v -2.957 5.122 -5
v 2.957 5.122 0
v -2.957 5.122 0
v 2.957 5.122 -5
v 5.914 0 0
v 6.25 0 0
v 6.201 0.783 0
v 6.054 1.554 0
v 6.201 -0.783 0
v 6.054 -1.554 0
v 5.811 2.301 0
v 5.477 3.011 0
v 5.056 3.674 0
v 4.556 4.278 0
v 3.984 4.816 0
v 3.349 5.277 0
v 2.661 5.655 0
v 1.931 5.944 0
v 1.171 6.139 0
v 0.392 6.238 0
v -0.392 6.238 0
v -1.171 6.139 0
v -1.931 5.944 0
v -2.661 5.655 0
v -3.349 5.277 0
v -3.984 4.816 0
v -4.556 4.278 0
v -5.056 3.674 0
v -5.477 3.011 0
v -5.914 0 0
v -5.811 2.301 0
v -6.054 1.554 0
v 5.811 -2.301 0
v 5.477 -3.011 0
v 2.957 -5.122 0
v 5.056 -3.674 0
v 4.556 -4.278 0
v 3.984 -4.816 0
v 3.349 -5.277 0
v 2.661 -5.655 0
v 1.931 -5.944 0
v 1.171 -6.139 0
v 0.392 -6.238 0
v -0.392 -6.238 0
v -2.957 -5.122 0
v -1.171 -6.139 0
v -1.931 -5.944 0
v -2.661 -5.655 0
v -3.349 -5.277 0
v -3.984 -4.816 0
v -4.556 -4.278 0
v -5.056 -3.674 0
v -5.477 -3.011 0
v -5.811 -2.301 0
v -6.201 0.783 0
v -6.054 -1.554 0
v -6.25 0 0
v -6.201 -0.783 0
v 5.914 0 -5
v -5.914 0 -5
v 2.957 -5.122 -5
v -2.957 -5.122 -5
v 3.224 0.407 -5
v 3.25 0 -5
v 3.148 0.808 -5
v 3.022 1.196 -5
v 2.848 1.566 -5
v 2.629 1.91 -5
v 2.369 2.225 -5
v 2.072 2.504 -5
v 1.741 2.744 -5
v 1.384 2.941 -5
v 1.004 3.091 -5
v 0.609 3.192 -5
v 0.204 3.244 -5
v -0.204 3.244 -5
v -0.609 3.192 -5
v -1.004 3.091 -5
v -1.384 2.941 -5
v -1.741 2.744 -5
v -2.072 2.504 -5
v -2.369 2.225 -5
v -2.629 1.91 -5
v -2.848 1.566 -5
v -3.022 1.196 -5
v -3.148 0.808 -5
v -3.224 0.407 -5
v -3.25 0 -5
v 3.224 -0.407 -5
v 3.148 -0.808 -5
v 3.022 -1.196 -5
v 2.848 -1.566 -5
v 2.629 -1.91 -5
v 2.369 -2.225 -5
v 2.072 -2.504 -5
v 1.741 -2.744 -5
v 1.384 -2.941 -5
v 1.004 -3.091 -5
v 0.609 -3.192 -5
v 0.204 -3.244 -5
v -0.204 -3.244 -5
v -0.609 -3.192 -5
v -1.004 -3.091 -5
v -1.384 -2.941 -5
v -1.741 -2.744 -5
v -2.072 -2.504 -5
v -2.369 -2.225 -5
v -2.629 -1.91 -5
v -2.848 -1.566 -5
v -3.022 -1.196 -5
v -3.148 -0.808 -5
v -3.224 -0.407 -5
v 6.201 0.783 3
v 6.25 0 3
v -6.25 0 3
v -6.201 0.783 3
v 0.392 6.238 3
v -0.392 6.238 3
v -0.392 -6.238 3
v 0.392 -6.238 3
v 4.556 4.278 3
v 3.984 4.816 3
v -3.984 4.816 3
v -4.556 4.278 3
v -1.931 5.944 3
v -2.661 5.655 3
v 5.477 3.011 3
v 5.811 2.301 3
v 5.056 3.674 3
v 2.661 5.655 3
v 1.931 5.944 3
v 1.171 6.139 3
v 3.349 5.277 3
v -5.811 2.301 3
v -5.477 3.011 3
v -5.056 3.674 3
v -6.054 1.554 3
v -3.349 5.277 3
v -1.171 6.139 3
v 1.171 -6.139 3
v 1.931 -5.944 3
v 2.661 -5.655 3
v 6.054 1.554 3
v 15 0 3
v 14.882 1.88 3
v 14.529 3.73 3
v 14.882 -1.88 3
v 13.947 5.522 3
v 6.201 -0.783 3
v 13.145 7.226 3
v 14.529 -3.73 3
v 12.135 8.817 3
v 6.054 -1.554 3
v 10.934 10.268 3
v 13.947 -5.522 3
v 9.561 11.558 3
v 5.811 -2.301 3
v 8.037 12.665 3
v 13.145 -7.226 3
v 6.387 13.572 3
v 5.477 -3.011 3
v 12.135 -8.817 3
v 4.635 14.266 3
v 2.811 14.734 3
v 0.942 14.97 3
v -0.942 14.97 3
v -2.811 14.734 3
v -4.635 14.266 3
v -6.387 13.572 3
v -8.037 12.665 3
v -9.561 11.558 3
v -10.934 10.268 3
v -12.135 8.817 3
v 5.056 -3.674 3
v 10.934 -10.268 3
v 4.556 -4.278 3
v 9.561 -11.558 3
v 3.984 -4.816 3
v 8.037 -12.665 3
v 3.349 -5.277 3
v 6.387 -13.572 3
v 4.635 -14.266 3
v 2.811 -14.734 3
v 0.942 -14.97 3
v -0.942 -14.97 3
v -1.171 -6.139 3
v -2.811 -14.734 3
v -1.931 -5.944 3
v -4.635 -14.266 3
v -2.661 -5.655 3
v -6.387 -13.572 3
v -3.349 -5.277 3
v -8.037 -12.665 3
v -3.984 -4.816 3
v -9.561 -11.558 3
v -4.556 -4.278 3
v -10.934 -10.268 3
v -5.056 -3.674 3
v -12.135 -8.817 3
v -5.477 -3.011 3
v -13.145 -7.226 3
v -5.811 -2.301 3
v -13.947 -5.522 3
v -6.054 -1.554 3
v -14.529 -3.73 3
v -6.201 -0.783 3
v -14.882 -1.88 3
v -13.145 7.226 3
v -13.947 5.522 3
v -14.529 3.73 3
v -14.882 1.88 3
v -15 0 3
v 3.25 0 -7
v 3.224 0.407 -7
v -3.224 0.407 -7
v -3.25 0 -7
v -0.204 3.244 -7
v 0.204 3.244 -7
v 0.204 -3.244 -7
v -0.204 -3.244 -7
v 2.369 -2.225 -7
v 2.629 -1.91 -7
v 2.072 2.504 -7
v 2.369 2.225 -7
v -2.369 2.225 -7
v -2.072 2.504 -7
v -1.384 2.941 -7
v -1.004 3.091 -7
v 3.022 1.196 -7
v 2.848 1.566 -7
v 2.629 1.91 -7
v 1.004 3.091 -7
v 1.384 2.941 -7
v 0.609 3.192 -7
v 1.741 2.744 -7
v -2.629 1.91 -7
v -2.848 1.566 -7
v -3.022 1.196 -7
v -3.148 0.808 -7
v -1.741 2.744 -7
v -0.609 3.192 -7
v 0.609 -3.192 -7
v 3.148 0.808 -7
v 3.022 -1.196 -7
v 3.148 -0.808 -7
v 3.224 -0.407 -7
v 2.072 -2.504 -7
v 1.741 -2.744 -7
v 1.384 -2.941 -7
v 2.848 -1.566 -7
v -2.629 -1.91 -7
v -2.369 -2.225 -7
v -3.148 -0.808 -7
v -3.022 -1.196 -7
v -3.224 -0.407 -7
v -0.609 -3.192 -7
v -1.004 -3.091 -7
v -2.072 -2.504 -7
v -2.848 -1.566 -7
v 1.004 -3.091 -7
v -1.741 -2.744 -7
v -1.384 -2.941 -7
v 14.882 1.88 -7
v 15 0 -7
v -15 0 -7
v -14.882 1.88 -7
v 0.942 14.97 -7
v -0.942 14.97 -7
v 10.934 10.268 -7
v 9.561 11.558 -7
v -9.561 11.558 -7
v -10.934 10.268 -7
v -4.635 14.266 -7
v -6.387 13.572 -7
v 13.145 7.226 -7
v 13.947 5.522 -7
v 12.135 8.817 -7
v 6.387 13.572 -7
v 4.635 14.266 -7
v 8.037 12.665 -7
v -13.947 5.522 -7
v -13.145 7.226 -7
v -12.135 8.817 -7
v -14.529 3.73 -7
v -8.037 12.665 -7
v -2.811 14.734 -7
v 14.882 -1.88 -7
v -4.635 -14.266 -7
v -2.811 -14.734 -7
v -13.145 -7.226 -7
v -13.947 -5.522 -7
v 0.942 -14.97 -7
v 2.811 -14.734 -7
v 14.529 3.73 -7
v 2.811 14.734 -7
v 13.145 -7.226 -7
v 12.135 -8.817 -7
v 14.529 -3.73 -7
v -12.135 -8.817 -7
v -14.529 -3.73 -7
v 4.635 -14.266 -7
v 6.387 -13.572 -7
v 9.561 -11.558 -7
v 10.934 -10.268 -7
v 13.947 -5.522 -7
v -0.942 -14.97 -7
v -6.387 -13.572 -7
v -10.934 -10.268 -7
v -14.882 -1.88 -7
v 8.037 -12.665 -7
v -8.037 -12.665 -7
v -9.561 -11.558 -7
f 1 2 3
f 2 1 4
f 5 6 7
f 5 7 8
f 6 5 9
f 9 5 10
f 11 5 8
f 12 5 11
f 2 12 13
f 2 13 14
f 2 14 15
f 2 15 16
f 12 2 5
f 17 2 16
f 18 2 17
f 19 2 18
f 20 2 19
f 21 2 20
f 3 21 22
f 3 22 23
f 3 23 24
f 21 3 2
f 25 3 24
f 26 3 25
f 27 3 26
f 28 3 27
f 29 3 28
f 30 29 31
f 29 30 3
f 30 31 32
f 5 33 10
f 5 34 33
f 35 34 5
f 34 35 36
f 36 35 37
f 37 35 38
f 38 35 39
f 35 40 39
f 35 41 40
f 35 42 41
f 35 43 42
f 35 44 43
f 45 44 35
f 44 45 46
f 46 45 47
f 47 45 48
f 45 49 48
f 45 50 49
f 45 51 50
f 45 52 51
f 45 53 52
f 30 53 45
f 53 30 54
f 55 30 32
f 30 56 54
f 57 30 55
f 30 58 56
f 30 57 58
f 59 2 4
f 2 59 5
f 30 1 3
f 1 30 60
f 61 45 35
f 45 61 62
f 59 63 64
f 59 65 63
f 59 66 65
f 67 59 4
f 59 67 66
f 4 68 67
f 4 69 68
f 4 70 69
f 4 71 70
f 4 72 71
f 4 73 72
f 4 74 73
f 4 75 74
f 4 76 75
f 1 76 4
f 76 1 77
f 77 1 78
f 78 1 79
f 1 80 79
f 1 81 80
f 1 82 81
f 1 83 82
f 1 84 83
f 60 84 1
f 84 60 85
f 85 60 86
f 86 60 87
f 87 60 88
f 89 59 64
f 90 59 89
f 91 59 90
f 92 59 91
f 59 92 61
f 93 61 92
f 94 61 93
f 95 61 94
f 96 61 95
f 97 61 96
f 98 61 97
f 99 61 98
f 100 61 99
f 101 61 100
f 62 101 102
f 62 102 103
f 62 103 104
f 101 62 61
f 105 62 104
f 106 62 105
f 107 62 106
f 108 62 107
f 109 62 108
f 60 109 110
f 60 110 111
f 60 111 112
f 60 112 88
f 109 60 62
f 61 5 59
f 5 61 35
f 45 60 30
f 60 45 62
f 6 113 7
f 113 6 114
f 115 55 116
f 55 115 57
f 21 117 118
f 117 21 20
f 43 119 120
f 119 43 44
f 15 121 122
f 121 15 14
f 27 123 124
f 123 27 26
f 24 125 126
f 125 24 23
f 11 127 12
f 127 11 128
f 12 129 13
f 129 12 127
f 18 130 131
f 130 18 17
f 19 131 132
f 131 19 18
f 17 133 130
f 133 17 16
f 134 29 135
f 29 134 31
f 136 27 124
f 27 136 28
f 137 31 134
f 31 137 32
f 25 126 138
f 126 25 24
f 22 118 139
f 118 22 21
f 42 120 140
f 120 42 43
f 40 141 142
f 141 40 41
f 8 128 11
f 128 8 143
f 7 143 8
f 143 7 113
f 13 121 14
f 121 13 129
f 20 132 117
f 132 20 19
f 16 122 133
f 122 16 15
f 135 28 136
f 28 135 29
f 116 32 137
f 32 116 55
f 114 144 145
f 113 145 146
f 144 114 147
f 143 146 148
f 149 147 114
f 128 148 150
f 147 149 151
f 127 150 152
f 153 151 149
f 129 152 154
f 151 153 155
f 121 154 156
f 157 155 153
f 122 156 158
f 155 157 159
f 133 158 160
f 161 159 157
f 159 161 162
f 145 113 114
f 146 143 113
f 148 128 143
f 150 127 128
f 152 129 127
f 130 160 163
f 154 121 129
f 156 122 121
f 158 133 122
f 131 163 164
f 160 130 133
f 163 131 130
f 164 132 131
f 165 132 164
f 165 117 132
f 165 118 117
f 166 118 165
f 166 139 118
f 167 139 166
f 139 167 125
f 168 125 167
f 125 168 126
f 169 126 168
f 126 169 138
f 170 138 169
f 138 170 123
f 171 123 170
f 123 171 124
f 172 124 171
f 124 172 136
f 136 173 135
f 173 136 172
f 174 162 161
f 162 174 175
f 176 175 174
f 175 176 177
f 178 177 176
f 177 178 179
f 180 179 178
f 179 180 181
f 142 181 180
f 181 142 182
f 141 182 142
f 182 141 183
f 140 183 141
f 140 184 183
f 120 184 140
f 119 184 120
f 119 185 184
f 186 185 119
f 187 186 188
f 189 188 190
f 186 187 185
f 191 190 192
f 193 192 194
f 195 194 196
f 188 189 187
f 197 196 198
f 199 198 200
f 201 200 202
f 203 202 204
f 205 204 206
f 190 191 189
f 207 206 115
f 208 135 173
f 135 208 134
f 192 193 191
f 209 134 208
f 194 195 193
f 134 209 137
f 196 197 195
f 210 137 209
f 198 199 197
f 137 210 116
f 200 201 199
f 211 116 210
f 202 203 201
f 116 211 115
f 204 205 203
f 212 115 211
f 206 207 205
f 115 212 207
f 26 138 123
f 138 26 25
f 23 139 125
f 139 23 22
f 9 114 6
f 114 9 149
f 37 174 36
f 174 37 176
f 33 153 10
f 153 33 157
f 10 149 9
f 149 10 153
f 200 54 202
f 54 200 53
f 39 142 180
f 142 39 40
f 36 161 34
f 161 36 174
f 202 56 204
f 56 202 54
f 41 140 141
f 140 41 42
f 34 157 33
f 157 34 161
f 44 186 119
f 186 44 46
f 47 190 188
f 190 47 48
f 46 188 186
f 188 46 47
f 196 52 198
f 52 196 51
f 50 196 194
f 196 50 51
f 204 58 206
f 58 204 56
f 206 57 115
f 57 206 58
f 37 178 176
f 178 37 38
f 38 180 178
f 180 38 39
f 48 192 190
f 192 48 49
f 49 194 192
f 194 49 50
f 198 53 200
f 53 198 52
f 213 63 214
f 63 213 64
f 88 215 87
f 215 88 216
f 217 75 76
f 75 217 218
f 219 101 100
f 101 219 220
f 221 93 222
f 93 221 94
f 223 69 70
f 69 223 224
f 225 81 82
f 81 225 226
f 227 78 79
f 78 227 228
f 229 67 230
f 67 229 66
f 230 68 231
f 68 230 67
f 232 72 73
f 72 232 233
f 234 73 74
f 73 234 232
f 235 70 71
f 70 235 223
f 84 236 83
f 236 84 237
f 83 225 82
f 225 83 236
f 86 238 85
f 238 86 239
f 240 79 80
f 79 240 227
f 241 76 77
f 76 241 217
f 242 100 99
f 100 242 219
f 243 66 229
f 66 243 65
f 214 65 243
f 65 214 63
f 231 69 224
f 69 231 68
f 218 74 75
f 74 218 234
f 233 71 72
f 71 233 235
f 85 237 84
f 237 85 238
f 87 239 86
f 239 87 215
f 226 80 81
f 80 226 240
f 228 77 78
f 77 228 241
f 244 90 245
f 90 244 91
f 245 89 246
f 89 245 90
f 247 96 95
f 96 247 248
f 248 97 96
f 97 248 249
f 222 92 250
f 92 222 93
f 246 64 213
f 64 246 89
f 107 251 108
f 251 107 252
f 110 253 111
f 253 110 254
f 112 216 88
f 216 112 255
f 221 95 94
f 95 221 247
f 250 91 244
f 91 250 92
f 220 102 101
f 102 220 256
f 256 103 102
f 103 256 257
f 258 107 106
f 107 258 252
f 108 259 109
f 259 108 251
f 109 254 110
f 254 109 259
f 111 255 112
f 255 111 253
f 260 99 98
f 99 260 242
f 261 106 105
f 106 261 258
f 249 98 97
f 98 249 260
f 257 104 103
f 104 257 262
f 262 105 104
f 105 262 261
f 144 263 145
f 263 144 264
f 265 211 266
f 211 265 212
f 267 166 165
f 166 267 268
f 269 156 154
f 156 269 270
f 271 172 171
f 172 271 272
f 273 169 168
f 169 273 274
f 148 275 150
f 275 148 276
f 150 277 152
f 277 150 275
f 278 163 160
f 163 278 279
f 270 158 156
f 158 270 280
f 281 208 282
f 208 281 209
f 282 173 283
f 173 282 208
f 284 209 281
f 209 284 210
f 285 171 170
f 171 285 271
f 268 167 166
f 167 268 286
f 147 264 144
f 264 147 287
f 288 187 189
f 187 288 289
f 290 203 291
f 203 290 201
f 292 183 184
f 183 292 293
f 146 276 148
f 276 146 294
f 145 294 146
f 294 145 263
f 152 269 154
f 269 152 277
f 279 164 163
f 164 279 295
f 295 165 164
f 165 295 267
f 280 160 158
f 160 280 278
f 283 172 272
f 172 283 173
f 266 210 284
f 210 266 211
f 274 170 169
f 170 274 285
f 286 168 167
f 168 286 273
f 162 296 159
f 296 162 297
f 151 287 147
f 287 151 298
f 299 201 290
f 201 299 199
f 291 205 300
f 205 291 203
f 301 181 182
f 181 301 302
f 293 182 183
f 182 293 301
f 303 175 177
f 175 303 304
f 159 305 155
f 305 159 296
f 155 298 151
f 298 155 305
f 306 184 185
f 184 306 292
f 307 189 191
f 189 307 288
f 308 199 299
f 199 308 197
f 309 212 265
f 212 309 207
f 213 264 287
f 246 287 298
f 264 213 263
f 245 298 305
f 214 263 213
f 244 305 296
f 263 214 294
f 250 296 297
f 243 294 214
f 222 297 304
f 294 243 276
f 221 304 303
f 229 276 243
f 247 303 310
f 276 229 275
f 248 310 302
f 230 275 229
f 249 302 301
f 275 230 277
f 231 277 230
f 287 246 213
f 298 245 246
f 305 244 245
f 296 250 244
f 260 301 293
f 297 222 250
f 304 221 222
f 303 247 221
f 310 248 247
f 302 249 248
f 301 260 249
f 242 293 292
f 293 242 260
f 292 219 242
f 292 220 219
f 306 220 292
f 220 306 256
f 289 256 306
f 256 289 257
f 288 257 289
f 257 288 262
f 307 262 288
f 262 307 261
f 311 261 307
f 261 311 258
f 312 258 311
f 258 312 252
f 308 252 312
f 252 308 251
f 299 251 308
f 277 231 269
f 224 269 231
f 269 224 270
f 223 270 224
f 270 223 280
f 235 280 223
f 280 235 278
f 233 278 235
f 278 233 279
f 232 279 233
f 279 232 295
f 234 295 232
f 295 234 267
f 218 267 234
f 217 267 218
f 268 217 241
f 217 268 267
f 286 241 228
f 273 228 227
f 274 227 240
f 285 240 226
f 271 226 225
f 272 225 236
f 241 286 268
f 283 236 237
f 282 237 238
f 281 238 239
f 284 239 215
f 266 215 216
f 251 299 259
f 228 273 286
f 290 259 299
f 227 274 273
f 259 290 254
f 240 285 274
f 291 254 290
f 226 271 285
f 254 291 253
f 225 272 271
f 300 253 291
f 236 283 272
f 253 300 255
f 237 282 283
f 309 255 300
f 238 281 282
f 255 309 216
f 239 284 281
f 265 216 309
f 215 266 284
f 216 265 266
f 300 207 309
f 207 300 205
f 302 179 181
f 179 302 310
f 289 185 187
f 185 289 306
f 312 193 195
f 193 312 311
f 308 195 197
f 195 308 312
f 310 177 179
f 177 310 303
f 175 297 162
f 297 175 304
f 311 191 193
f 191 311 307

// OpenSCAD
$fn = 50;


difference() {
	union() {
		translate(v = [0, 0, -7.0000000000]) {
			cylinder(h = 10.0000000000, r = 15.0000000000);
		}
	}
	union() {
		translate(v = [0, 0, 0]) {
			rotate(a = [0, 0, 0]) {
				difference() {
					union() {
						translate(v = [0, 0, -5]) {
							linear_extrude(height = 5) {
								polygon(points = [[5.9142500000, 0.0000000000], [2.9571250000, 5.1218907443], [-2.9571250000, 5.1218907443], [-5.9142500000, 0.0000000000], [-2.9571250000, -5.1218907443], [2.9571250000, -5.1218907443]]);
							}
						}
					}
					union();
				}
			}
		}
		#cylinder(h = 3, r = 6.2500000000);
		#translate(v = [0, 0, -100.0000000000]) {
			cylinder(h = 200, r = 3.2500000000);
		}
	}
}
